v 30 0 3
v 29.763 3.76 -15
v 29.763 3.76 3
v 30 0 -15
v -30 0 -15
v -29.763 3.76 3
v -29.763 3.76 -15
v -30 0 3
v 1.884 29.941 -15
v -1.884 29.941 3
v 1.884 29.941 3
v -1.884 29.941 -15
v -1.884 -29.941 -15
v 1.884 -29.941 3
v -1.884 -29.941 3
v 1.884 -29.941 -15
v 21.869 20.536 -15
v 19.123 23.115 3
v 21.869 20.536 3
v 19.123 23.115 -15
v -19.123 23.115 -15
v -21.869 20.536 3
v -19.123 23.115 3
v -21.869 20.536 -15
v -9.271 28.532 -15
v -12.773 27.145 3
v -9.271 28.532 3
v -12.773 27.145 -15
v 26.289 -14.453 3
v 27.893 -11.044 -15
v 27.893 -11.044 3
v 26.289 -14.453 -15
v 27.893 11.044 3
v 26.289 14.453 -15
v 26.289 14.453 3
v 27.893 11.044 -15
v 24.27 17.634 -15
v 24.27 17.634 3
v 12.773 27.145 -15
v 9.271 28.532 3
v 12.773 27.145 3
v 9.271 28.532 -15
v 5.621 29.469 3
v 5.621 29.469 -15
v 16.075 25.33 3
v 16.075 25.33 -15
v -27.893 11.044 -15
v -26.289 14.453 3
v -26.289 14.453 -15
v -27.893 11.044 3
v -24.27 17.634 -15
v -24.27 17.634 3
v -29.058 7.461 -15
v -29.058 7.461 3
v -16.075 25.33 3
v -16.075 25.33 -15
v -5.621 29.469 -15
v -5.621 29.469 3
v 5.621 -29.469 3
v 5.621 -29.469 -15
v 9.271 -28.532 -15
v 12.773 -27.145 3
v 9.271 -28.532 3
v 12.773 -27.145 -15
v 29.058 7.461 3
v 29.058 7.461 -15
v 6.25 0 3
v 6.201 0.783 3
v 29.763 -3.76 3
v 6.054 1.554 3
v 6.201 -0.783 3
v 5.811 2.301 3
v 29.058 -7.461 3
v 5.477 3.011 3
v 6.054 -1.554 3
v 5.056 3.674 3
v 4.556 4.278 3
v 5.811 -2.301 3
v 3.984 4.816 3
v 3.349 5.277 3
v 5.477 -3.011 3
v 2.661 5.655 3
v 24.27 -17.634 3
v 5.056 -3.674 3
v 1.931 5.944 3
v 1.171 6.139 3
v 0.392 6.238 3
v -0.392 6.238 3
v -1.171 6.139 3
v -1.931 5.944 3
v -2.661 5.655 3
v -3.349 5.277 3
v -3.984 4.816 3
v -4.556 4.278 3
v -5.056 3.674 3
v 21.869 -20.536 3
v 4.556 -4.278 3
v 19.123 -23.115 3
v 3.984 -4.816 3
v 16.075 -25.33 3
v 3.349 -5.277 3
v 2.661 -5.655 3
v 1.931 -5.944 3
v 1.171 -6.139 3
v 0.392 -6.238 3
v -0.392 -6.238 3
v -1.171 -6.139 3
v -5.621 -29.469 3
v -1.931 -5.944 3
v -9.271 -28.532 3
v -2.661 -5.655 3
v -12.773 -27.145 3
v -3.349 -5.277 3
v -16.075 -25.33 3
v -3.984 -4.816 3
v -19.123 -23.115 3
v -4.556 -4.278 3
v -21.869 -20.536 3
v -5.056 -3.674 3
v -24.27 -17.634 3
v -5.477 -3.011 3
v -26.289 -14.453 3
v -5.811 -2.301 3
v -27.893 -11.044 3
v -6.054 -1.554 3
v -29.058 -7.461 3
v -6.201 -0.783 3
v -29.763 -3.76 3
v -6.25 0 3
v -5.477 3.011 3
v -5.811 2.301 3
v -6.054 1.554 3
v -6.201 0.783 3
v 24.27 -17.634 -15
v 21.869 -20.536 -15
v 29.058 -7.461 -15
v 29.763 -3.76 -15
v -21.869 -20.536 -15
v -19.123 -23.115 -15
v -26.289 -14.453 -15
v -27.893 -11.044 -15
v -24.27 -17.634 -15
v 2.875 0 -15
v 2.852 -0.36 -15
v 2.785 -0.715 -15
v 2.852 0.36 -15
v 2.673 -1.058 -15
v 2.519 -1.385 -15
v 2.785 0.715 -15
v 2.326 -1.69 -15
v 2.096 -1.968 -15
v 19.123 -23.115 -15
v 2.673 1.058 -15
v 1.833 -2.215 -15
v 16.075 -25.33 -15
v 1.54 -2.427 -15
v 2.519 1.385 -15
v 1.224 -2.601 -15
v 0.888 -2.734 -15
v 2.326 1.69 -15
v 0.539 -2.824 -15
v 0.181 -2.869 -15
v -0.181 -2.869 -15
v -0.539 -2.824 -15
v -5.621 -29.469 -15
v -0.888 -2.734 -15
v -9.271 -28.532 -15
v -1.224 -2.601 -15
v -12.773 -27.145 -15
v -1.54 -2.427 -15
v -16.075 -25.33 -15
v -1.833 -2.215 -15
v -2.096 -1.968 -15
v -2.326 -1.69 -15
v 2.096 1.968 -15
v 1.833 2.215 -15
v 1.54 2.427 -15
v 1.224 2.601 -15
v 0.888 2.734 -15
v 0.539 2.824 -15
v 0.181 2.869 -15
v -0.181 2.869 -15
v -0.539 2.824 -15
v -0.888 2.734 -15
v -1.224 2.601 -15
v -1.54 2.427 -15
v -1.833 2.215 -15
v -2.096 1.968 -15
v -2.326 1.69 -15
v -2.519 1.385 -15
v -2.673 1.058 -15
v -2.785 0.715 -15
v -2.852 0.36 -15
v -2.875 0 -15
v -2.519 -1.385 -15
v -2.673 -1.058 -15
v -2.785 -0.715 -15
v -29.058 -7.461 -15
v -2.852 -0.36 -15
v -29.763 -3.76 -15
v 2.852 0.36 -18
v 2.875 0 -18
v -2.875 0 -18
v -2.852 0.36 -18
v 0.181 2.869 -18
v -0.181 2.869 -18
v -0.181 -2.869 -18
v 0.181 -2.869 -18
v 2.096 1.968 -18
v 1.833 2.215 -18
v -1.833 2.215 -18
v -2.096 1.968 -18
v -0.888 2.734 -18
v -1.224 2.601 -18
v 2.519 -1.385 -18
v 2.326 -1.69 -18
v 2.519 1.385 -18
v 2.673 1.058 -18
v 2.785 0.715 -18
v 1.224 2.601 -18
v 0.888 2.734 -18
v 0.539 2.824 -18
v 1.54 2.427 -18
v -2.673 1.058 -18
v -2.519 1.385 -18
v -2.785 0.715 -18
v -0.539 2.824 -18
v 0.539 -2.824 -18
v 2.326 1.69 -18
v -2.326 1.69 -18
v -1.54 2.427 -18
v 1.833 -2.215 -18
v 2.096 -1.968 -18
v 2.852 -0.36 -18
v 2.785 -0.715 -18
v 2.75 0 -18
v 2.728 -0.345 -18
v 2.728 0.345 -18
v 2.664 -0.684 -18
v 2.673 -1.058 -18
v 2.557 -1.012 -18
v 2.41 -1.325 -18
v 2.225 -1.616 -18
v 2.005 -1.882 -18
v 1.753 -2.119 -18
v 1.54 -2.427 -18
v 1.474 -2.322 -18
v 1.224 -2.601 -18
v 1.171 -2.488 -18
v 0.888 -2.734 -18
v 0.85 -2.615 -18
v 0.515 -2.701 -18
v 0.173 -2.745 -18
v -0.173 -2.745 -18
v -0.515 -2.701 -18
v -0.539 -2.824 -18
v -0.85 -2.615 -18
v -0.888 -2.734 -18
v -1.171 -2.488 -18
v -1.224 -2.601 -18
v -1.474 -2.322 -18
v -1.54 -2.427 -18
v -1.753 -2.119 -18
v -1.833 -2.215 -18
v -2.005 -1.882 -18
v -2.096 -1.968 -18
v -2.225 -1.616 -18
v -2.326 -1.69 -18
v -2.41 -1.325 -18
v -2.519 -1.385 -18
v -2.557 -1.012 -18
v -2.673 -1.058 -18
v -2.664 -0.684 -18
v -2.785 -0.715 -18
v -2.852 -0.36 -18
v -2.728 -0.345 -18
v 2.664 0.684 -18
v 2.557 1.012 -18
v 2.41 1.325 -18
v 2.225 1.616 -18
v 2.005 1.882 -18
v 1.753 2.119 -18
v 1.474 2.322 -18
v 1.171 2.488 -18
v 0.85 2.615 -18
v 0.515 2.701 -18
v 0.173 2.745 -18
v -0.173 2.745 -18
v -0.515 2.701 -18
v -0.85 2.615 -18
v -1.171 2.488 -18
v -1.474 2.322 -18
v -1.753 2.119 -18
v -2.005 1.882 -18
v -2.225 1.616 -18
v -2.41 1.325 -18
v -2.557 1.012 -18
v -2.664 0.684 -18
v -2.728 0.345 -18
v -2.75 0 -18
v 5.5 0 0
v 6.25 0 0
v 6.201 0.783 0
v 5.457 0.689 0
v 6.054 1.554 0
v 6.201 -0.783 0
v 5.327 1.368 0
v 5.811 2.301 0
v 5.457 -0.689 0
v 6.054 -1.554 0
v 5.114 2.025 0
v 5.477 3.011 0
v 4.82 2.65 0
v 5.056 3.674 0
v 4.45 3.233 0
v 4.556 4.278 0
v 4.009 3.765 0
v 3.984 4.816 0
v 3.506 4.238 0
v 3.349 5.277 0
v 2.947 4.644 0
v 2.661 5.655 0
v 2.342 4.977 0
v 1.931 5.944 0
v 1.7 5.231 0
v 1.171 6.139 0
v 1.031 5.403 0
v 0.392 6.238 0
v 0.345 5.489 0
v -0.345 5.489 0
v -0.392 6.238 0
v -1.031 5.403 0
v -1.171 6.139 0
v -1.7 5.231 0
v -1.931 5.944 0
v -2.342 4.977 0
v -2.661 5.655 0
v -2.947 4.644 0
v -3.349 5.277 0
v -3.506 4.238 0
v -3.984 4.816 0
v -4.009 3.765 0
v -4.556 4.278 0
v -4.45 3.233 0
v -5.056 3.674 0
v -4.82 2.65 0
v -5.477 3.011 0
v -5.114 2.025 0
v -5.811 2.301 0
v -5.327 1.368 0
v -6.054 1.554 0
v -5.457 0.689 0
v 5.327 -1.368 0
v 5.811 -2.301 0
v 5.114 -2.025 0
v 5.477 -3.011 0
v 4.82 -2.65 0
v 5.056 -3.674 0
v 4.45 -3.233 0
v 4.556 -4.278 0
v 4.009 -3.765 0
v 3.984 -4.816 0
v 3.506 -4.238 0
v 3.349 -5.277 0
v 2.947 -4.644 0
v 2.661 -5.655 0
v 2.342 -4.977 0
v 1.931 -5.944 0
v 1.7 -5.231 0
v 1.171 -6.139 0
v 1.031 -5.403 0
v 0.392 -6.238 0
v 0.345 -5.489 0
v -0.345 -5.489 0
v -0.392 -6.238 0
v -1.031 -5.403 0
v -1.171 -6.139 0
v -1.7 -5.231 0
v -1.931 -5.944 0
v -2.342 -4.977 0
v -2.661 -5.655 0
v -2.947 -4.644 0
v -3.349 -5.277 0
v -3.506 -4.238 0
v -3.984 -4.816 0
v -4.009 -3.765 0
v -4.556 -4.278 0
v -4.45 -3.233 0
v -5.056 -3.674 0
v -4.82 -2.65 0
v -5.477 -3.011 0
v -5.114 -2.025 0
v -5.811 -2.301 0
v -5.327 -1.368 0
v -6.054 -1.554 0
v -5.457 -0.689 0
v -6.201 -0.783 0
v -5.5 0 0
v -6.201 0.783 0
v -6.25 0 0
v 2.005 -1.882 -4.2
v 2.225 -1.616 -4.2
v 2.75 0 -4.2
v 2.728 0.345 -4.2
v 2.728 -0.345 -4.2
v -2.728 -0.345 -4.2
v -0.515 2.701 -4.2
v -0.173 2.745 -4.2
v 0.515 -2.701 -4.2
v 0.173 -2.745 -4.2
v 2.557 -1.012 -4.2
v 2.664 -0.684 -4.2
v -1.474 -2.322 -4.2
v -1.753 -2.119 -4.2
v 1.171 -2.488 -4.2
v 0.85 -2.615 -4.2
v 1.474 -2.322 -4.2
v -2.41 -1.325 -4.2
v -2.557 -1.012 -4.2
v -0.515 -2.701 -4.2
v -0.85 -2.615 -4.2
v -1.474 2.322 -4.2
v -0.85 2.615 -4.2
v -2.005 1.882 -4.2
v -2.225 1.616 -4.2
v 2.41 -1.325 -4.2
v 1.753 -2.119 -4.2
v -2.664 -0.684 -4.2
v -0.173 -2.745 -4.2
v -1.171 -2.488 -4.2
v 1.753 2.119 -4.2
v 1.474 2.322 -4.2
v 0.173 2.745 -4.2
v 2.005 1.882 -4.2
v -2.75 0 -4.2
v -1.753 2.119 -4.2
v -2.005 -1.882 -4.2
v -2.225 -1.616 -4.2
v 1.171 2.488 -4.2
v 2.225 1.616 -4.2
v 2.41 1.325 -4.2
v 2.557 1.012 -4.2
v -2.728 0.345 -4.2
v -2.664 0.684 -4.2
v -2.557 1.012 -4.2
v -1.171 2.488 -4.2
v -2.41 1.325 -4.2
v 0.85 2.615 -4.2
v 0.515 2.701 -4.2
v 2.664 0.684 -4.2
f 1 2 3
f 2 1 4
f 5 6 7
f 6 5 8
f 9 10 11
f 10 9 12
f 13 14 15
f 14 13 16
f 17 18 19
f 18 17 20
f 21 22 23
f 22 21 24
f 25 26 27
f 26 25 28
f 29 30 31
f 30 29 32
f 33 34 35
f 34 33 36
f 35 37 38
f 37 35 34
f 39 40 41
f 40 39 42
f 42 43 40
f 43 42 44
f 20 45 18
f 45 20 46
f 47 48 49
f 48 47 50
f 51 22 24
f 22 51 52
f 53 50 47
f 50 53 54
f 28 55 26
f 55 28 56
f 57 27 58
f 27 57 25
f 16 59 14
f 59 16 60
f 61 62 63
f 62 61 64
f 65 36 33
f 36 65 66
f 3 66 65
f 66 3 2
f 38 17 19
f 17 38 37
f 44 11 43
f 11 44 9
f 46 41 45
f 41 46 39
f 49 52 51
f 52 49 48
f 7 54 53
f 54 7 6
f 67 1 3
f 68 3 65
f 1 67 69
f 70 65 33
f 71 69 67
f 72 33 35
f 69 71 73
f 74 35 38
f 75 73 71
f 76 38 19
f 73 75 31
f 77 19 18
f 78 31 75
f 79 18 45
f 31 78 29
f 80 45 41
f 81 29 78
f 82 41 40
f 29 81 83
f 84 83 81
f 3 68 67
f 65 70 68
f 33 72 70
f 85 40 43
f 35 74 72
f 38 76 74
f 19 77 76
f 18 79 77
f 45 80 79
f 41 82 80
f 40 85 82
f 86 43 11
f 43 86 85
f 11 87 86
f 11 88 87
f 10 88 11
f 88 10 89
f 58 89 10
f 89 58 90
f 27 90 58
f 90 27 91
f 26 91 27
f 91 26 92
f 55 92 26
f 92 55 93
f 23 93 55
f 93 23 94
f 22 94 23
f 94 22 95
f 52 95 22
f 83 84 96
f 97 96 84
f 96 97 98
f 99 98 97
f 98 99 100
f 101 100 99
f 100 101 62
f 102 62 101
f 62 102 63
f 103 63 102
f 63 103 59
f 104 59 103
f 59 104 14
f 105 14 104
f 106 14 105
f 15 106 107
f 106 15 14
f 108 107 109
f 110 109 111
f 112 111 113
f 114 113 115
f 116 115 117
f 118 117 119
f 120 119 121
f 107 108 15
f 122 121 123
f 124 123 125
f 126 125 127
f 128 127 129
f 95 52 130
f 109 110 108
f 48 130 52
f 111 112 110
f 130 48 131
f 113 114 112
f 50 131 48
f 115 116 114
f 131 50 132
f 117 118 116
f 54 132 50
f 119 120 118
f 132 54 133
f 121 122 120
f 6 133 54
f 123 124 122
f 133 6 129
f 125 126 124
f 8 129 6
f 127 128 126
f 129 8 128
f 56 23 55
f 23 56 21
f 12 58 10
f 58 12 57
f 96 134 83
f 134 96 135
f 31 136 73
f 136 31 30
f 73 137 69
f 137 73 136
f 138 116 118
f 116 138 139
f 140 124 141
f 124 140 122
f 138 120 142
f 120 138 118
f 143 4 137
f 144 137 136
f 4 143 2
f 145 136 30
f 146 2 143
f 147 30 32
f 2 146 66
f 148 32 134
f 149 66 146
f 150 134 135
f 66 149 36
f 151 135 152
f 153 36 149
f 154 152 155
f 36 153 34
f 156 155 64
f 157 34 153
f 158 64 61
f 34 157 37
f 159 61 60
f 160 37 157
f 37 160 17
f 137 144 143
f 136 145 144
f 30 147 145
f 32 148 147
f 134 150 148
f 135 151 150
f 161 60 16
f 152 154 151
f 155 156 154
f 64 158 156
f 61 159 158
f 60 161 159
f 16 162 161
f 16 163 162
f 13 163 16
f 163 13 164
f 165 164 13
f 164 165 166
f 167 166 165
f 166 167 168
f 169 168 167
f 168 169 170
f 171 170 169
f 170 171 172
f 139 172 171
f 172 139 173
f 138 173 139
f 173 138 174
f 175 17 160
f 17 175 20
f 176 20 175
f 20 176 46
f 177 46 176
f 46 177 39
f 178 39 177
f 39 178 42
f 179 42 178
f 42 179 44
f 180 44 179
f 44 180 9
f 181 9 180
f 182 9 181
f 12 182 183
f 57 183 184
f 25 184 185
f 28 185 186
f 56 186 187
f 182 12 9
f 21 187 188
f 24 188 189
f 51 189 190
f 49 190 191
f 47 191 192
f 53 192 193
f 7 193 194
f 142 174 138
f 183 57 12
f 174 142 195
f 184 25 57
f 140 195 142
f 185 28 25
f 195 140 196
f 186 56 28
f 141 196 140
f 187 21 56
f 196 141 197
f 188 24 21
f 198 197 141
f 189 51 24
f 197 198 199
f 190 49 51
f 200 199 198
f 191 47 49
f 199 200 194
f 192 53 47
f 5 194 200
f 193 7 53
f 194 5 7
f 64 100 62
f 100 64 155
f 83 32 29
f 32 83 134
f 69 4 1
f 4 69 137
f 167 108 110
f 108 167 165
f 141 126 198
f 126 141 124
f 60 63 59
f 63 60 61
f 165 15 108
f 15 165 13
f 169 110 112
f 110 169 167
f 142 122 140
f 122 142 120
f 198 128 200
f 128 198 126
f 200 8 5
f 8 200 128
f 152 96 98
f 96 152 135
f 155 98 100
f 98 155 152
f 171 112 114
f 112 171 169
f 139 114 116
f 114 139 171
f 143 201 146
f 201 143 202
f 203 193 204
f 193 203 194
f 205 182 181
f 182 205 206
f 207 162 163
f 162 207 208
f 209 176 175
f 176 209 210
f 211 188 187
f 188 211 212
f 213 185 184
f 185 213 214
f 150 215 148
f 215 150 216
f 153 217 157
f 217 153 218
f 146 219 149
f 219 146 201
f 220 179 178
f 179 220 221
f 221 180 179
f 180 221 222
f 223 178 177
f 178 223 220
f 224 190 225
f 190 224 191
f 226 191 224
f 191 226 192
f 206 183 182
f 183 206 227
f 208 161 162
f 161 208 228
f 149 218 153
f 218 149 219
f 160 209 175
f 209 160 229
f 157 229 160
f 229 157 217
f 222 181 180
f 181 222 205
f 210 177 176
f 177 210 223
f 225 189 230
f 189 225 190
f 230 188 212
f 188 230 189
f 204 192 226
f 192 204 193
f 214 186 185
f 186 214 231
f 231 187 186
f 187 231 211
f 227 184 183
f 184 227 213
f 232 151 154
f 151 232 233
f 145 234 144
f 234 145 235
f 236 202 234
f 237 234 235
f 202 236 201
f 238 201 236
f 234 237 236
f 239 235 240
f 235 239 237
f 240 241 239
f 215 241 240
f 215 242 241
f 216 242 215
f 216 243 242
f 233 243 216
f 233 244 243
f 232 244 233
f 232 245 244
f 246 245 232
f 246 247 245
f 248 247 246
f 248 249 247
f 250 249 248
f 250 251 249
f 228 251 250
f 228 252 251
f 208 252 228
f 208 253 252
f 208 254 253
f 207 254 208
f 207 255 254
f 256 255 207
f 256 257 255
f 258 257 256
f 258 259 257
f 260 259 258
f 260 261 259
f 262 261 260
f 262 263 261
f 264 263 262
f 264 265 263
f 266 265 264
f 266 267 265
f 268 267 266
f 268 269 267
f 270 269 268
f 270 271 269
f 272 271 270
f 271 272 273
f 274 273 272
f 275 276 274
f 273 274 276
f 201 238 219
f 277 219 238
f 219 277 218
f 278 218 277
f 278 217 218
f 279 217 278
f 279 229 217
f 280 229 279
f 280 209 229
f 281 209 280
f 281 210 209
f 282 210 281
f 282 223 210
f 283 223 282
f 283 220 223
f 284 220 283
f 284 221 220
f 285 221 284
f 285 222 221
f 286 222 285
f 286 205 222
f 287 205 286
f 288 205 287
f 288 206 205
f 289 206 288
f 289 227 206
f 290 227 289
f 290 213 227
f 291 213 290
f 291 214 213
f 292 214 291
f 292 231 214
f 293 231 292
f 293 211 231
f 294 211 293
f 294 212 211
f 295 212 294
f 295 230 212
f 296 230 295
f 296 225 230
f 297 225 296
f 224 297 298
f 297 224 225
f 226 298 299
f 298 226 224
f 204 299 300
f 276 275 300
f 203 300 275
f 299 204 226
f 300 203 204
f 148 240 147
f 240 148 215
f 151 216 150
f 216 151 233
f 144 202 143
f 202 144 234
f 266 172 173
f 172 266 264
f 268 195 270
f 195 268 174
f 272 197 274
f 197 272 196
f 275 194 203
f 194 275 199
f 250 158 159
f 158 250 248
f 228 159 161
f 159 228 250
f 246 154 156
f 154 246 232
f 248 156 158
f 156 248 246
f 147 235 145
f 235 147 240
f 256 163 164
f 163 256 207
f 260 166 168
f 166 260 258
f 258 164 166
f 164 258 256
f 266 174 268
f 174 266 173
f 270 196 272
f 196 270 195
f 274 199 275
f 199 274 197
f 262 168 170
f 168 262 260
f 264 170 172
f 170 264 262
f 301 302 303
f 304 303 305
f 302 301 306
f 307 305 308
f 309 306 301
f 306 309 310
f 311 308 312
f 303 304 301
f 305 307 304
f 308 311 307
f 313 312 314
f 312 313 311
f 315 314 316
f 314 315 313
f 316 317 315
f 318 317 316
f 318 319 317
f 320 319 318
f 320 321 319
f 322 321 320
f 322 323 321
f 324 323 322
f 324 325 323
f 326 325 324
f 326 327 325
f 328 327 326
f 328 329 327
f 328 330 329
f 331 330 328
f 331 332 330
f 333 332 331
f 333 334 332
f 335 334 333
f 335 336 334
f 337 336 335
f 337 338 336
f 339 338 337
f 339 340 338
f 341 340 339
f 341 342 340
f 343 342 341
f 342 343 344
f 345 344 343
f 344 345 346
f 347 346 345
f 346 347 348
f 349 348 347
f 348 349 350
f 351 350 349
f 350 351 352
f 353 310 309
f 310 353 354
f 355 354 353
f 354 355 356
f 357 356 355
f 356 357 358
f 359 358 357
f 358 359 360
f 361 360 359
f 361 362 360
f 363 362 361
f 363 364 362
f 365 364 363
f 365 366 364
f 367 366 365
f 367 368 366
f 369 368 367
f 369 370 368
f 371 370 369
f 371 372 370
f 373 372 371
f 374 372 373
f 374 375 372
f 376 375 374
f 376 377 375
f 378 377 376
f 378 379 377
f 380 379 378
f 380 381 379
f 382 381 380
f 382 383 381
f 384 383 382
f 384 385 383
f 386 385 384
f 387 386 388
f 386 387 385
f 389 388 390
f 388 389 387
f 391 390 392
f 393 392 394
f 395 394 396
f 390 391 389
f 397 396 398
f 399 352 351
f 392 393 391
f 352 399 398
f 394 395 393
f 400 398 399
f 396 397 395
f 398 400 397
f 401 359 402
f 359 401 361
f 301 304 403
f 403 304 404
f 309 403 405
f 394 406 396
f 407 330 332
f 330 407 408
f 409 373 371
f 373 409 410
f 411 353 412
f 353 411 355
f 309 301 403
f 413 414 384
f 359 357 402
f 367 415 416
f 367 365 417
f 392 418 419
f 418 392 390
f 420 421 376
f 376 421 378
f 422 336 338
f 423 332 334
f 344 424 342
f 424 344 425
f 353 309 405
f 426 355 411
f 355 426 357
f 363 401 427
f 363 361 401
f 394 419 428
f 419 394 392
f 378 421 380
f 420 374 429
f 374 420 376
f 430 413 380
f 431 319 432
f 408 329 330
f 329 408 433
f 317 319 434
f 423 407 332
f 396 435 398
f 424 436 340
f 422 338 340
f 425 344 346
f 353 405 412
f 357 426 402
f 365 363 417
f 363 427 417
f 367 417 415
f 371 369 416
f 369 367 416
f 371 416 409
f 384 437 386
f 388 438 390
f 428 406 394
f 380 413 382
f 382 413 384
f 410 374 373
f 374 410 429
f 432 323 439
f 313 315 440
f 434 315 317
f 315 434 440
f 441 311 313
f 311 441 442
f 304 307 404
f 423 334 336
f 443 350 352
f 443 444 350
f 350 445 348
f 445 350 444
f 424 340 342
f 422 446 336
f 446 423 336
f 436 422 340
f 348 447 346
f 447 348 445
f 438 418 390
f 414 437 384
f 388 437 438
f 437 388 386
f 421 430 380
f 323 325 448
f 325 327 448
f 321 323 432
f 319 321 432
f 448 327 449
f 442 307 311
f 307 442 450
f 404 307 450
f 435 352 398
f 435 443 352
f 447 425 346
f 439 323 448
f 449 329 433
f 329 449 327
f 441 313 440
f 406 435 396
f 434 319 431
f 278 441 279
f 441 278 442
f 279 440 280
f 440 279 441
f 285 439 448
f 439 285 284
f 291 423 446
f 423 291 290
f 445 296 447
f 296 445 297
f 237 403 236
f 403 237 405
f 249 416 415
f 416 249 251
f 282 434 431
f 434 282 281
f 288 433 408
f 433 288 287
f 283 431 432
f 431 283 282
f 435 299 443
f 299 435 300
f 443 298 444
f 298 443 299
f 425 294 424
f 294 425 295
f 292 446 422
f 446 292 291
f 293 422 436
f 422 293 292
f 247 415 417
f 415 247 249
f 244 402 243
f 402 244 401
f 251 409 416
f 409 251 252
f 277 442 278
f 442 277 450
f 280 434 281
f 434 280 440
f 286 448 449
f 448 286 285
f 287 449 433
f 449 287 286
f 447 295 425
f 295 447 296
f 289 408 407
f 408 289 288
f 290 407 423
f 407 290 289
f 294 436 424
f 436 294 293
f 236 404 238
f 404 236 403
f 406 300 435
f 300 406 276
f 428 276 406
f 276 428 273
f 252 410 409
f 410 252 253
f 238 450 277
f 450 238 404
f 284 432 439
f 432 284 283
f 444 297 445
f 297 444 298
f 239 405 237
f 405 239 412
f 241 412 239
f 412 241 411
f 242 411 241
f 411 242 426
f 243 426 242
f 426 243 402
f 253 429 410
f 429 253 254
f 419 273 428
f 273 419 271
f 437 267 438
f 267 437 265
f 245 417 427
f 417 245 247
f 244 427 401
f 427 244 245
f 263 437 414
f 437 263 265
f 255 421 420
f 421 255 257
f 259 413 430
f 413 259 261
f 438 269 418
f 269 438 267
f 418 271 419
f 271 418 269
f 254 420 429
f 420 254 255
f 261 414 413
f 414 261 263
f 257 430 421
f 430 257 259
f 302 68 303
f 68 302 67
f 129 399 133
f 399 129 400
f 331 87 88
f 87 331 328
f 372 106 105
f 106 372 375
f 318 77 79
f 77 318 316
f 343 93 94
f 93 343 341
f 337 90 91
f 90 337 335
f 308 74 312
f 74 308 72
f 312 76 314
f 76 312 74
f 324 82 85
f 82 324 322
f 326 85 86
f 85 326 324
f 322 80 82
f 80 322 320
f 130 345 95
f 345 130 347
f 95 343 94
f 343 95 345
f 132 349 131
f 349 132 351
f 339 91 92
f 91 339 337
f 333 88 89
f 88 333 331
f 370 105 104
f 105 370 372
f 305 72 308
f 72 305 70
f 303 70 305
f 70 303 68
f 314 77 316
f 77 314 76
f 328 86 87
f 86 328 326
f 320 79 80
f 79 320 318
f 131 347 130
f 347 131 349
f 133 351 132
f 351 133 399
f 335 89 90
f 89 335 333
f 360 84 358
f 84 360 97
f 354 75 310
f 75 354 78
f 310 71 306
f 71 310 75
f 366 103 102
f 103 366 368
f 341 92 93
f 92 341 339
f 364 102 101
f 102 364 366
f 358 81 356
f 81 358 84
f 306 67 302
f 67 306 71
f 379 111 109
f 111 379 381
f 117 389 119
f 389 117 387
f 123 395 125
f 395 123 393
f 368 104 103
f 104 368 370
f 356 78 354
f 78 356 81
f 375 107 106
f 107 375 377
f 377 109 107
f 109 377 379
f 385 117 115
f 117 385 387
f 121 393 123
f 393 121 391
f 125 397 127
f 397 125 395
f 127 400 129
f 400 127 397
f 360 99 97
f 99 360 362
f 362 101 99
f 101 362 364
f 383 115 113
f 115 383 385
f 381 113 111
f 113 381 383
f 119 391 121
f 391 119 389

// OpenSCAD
$fn = 50;


difference() {
	union() {
		translate(v = [0, 0, -15.0000000000]) {
			cylinder(h = 18, r = 30.0000000000);
		}
		#translate(v = [0, 0, -18.0000000000]) {
			cylinder(h = 18, r = 2.8750000000);
		}
	}
	union() {
		translate(v = [0, 0, 0]) {
			rotate(a = [0, 0, 0]) {
				difference() {
					union() {
						translate(v = [0, 0, -18.0000000000]) {
							cylinder(h = 18, r = 2.2500000000);
						}
						translate(v = [0, 0, -4.2000000000]) {
							cylinder(h = 4.2000000000, r1 = 2.7500000000, r2 = 5.5000000000);
						}
						translate(v = [0, 0, -18.0000000000]) {
							cylinder(h = 18, r = 2.7500000000);
						}
						translate(v = [0, 0, -18.0000000000]) {
							cylinder(h = 18, r = 2.2500000000);
						}
					}
					union();
				}
			}
		}
		#cylinder(h = 3, r = 6.2500000000);
	}
}
